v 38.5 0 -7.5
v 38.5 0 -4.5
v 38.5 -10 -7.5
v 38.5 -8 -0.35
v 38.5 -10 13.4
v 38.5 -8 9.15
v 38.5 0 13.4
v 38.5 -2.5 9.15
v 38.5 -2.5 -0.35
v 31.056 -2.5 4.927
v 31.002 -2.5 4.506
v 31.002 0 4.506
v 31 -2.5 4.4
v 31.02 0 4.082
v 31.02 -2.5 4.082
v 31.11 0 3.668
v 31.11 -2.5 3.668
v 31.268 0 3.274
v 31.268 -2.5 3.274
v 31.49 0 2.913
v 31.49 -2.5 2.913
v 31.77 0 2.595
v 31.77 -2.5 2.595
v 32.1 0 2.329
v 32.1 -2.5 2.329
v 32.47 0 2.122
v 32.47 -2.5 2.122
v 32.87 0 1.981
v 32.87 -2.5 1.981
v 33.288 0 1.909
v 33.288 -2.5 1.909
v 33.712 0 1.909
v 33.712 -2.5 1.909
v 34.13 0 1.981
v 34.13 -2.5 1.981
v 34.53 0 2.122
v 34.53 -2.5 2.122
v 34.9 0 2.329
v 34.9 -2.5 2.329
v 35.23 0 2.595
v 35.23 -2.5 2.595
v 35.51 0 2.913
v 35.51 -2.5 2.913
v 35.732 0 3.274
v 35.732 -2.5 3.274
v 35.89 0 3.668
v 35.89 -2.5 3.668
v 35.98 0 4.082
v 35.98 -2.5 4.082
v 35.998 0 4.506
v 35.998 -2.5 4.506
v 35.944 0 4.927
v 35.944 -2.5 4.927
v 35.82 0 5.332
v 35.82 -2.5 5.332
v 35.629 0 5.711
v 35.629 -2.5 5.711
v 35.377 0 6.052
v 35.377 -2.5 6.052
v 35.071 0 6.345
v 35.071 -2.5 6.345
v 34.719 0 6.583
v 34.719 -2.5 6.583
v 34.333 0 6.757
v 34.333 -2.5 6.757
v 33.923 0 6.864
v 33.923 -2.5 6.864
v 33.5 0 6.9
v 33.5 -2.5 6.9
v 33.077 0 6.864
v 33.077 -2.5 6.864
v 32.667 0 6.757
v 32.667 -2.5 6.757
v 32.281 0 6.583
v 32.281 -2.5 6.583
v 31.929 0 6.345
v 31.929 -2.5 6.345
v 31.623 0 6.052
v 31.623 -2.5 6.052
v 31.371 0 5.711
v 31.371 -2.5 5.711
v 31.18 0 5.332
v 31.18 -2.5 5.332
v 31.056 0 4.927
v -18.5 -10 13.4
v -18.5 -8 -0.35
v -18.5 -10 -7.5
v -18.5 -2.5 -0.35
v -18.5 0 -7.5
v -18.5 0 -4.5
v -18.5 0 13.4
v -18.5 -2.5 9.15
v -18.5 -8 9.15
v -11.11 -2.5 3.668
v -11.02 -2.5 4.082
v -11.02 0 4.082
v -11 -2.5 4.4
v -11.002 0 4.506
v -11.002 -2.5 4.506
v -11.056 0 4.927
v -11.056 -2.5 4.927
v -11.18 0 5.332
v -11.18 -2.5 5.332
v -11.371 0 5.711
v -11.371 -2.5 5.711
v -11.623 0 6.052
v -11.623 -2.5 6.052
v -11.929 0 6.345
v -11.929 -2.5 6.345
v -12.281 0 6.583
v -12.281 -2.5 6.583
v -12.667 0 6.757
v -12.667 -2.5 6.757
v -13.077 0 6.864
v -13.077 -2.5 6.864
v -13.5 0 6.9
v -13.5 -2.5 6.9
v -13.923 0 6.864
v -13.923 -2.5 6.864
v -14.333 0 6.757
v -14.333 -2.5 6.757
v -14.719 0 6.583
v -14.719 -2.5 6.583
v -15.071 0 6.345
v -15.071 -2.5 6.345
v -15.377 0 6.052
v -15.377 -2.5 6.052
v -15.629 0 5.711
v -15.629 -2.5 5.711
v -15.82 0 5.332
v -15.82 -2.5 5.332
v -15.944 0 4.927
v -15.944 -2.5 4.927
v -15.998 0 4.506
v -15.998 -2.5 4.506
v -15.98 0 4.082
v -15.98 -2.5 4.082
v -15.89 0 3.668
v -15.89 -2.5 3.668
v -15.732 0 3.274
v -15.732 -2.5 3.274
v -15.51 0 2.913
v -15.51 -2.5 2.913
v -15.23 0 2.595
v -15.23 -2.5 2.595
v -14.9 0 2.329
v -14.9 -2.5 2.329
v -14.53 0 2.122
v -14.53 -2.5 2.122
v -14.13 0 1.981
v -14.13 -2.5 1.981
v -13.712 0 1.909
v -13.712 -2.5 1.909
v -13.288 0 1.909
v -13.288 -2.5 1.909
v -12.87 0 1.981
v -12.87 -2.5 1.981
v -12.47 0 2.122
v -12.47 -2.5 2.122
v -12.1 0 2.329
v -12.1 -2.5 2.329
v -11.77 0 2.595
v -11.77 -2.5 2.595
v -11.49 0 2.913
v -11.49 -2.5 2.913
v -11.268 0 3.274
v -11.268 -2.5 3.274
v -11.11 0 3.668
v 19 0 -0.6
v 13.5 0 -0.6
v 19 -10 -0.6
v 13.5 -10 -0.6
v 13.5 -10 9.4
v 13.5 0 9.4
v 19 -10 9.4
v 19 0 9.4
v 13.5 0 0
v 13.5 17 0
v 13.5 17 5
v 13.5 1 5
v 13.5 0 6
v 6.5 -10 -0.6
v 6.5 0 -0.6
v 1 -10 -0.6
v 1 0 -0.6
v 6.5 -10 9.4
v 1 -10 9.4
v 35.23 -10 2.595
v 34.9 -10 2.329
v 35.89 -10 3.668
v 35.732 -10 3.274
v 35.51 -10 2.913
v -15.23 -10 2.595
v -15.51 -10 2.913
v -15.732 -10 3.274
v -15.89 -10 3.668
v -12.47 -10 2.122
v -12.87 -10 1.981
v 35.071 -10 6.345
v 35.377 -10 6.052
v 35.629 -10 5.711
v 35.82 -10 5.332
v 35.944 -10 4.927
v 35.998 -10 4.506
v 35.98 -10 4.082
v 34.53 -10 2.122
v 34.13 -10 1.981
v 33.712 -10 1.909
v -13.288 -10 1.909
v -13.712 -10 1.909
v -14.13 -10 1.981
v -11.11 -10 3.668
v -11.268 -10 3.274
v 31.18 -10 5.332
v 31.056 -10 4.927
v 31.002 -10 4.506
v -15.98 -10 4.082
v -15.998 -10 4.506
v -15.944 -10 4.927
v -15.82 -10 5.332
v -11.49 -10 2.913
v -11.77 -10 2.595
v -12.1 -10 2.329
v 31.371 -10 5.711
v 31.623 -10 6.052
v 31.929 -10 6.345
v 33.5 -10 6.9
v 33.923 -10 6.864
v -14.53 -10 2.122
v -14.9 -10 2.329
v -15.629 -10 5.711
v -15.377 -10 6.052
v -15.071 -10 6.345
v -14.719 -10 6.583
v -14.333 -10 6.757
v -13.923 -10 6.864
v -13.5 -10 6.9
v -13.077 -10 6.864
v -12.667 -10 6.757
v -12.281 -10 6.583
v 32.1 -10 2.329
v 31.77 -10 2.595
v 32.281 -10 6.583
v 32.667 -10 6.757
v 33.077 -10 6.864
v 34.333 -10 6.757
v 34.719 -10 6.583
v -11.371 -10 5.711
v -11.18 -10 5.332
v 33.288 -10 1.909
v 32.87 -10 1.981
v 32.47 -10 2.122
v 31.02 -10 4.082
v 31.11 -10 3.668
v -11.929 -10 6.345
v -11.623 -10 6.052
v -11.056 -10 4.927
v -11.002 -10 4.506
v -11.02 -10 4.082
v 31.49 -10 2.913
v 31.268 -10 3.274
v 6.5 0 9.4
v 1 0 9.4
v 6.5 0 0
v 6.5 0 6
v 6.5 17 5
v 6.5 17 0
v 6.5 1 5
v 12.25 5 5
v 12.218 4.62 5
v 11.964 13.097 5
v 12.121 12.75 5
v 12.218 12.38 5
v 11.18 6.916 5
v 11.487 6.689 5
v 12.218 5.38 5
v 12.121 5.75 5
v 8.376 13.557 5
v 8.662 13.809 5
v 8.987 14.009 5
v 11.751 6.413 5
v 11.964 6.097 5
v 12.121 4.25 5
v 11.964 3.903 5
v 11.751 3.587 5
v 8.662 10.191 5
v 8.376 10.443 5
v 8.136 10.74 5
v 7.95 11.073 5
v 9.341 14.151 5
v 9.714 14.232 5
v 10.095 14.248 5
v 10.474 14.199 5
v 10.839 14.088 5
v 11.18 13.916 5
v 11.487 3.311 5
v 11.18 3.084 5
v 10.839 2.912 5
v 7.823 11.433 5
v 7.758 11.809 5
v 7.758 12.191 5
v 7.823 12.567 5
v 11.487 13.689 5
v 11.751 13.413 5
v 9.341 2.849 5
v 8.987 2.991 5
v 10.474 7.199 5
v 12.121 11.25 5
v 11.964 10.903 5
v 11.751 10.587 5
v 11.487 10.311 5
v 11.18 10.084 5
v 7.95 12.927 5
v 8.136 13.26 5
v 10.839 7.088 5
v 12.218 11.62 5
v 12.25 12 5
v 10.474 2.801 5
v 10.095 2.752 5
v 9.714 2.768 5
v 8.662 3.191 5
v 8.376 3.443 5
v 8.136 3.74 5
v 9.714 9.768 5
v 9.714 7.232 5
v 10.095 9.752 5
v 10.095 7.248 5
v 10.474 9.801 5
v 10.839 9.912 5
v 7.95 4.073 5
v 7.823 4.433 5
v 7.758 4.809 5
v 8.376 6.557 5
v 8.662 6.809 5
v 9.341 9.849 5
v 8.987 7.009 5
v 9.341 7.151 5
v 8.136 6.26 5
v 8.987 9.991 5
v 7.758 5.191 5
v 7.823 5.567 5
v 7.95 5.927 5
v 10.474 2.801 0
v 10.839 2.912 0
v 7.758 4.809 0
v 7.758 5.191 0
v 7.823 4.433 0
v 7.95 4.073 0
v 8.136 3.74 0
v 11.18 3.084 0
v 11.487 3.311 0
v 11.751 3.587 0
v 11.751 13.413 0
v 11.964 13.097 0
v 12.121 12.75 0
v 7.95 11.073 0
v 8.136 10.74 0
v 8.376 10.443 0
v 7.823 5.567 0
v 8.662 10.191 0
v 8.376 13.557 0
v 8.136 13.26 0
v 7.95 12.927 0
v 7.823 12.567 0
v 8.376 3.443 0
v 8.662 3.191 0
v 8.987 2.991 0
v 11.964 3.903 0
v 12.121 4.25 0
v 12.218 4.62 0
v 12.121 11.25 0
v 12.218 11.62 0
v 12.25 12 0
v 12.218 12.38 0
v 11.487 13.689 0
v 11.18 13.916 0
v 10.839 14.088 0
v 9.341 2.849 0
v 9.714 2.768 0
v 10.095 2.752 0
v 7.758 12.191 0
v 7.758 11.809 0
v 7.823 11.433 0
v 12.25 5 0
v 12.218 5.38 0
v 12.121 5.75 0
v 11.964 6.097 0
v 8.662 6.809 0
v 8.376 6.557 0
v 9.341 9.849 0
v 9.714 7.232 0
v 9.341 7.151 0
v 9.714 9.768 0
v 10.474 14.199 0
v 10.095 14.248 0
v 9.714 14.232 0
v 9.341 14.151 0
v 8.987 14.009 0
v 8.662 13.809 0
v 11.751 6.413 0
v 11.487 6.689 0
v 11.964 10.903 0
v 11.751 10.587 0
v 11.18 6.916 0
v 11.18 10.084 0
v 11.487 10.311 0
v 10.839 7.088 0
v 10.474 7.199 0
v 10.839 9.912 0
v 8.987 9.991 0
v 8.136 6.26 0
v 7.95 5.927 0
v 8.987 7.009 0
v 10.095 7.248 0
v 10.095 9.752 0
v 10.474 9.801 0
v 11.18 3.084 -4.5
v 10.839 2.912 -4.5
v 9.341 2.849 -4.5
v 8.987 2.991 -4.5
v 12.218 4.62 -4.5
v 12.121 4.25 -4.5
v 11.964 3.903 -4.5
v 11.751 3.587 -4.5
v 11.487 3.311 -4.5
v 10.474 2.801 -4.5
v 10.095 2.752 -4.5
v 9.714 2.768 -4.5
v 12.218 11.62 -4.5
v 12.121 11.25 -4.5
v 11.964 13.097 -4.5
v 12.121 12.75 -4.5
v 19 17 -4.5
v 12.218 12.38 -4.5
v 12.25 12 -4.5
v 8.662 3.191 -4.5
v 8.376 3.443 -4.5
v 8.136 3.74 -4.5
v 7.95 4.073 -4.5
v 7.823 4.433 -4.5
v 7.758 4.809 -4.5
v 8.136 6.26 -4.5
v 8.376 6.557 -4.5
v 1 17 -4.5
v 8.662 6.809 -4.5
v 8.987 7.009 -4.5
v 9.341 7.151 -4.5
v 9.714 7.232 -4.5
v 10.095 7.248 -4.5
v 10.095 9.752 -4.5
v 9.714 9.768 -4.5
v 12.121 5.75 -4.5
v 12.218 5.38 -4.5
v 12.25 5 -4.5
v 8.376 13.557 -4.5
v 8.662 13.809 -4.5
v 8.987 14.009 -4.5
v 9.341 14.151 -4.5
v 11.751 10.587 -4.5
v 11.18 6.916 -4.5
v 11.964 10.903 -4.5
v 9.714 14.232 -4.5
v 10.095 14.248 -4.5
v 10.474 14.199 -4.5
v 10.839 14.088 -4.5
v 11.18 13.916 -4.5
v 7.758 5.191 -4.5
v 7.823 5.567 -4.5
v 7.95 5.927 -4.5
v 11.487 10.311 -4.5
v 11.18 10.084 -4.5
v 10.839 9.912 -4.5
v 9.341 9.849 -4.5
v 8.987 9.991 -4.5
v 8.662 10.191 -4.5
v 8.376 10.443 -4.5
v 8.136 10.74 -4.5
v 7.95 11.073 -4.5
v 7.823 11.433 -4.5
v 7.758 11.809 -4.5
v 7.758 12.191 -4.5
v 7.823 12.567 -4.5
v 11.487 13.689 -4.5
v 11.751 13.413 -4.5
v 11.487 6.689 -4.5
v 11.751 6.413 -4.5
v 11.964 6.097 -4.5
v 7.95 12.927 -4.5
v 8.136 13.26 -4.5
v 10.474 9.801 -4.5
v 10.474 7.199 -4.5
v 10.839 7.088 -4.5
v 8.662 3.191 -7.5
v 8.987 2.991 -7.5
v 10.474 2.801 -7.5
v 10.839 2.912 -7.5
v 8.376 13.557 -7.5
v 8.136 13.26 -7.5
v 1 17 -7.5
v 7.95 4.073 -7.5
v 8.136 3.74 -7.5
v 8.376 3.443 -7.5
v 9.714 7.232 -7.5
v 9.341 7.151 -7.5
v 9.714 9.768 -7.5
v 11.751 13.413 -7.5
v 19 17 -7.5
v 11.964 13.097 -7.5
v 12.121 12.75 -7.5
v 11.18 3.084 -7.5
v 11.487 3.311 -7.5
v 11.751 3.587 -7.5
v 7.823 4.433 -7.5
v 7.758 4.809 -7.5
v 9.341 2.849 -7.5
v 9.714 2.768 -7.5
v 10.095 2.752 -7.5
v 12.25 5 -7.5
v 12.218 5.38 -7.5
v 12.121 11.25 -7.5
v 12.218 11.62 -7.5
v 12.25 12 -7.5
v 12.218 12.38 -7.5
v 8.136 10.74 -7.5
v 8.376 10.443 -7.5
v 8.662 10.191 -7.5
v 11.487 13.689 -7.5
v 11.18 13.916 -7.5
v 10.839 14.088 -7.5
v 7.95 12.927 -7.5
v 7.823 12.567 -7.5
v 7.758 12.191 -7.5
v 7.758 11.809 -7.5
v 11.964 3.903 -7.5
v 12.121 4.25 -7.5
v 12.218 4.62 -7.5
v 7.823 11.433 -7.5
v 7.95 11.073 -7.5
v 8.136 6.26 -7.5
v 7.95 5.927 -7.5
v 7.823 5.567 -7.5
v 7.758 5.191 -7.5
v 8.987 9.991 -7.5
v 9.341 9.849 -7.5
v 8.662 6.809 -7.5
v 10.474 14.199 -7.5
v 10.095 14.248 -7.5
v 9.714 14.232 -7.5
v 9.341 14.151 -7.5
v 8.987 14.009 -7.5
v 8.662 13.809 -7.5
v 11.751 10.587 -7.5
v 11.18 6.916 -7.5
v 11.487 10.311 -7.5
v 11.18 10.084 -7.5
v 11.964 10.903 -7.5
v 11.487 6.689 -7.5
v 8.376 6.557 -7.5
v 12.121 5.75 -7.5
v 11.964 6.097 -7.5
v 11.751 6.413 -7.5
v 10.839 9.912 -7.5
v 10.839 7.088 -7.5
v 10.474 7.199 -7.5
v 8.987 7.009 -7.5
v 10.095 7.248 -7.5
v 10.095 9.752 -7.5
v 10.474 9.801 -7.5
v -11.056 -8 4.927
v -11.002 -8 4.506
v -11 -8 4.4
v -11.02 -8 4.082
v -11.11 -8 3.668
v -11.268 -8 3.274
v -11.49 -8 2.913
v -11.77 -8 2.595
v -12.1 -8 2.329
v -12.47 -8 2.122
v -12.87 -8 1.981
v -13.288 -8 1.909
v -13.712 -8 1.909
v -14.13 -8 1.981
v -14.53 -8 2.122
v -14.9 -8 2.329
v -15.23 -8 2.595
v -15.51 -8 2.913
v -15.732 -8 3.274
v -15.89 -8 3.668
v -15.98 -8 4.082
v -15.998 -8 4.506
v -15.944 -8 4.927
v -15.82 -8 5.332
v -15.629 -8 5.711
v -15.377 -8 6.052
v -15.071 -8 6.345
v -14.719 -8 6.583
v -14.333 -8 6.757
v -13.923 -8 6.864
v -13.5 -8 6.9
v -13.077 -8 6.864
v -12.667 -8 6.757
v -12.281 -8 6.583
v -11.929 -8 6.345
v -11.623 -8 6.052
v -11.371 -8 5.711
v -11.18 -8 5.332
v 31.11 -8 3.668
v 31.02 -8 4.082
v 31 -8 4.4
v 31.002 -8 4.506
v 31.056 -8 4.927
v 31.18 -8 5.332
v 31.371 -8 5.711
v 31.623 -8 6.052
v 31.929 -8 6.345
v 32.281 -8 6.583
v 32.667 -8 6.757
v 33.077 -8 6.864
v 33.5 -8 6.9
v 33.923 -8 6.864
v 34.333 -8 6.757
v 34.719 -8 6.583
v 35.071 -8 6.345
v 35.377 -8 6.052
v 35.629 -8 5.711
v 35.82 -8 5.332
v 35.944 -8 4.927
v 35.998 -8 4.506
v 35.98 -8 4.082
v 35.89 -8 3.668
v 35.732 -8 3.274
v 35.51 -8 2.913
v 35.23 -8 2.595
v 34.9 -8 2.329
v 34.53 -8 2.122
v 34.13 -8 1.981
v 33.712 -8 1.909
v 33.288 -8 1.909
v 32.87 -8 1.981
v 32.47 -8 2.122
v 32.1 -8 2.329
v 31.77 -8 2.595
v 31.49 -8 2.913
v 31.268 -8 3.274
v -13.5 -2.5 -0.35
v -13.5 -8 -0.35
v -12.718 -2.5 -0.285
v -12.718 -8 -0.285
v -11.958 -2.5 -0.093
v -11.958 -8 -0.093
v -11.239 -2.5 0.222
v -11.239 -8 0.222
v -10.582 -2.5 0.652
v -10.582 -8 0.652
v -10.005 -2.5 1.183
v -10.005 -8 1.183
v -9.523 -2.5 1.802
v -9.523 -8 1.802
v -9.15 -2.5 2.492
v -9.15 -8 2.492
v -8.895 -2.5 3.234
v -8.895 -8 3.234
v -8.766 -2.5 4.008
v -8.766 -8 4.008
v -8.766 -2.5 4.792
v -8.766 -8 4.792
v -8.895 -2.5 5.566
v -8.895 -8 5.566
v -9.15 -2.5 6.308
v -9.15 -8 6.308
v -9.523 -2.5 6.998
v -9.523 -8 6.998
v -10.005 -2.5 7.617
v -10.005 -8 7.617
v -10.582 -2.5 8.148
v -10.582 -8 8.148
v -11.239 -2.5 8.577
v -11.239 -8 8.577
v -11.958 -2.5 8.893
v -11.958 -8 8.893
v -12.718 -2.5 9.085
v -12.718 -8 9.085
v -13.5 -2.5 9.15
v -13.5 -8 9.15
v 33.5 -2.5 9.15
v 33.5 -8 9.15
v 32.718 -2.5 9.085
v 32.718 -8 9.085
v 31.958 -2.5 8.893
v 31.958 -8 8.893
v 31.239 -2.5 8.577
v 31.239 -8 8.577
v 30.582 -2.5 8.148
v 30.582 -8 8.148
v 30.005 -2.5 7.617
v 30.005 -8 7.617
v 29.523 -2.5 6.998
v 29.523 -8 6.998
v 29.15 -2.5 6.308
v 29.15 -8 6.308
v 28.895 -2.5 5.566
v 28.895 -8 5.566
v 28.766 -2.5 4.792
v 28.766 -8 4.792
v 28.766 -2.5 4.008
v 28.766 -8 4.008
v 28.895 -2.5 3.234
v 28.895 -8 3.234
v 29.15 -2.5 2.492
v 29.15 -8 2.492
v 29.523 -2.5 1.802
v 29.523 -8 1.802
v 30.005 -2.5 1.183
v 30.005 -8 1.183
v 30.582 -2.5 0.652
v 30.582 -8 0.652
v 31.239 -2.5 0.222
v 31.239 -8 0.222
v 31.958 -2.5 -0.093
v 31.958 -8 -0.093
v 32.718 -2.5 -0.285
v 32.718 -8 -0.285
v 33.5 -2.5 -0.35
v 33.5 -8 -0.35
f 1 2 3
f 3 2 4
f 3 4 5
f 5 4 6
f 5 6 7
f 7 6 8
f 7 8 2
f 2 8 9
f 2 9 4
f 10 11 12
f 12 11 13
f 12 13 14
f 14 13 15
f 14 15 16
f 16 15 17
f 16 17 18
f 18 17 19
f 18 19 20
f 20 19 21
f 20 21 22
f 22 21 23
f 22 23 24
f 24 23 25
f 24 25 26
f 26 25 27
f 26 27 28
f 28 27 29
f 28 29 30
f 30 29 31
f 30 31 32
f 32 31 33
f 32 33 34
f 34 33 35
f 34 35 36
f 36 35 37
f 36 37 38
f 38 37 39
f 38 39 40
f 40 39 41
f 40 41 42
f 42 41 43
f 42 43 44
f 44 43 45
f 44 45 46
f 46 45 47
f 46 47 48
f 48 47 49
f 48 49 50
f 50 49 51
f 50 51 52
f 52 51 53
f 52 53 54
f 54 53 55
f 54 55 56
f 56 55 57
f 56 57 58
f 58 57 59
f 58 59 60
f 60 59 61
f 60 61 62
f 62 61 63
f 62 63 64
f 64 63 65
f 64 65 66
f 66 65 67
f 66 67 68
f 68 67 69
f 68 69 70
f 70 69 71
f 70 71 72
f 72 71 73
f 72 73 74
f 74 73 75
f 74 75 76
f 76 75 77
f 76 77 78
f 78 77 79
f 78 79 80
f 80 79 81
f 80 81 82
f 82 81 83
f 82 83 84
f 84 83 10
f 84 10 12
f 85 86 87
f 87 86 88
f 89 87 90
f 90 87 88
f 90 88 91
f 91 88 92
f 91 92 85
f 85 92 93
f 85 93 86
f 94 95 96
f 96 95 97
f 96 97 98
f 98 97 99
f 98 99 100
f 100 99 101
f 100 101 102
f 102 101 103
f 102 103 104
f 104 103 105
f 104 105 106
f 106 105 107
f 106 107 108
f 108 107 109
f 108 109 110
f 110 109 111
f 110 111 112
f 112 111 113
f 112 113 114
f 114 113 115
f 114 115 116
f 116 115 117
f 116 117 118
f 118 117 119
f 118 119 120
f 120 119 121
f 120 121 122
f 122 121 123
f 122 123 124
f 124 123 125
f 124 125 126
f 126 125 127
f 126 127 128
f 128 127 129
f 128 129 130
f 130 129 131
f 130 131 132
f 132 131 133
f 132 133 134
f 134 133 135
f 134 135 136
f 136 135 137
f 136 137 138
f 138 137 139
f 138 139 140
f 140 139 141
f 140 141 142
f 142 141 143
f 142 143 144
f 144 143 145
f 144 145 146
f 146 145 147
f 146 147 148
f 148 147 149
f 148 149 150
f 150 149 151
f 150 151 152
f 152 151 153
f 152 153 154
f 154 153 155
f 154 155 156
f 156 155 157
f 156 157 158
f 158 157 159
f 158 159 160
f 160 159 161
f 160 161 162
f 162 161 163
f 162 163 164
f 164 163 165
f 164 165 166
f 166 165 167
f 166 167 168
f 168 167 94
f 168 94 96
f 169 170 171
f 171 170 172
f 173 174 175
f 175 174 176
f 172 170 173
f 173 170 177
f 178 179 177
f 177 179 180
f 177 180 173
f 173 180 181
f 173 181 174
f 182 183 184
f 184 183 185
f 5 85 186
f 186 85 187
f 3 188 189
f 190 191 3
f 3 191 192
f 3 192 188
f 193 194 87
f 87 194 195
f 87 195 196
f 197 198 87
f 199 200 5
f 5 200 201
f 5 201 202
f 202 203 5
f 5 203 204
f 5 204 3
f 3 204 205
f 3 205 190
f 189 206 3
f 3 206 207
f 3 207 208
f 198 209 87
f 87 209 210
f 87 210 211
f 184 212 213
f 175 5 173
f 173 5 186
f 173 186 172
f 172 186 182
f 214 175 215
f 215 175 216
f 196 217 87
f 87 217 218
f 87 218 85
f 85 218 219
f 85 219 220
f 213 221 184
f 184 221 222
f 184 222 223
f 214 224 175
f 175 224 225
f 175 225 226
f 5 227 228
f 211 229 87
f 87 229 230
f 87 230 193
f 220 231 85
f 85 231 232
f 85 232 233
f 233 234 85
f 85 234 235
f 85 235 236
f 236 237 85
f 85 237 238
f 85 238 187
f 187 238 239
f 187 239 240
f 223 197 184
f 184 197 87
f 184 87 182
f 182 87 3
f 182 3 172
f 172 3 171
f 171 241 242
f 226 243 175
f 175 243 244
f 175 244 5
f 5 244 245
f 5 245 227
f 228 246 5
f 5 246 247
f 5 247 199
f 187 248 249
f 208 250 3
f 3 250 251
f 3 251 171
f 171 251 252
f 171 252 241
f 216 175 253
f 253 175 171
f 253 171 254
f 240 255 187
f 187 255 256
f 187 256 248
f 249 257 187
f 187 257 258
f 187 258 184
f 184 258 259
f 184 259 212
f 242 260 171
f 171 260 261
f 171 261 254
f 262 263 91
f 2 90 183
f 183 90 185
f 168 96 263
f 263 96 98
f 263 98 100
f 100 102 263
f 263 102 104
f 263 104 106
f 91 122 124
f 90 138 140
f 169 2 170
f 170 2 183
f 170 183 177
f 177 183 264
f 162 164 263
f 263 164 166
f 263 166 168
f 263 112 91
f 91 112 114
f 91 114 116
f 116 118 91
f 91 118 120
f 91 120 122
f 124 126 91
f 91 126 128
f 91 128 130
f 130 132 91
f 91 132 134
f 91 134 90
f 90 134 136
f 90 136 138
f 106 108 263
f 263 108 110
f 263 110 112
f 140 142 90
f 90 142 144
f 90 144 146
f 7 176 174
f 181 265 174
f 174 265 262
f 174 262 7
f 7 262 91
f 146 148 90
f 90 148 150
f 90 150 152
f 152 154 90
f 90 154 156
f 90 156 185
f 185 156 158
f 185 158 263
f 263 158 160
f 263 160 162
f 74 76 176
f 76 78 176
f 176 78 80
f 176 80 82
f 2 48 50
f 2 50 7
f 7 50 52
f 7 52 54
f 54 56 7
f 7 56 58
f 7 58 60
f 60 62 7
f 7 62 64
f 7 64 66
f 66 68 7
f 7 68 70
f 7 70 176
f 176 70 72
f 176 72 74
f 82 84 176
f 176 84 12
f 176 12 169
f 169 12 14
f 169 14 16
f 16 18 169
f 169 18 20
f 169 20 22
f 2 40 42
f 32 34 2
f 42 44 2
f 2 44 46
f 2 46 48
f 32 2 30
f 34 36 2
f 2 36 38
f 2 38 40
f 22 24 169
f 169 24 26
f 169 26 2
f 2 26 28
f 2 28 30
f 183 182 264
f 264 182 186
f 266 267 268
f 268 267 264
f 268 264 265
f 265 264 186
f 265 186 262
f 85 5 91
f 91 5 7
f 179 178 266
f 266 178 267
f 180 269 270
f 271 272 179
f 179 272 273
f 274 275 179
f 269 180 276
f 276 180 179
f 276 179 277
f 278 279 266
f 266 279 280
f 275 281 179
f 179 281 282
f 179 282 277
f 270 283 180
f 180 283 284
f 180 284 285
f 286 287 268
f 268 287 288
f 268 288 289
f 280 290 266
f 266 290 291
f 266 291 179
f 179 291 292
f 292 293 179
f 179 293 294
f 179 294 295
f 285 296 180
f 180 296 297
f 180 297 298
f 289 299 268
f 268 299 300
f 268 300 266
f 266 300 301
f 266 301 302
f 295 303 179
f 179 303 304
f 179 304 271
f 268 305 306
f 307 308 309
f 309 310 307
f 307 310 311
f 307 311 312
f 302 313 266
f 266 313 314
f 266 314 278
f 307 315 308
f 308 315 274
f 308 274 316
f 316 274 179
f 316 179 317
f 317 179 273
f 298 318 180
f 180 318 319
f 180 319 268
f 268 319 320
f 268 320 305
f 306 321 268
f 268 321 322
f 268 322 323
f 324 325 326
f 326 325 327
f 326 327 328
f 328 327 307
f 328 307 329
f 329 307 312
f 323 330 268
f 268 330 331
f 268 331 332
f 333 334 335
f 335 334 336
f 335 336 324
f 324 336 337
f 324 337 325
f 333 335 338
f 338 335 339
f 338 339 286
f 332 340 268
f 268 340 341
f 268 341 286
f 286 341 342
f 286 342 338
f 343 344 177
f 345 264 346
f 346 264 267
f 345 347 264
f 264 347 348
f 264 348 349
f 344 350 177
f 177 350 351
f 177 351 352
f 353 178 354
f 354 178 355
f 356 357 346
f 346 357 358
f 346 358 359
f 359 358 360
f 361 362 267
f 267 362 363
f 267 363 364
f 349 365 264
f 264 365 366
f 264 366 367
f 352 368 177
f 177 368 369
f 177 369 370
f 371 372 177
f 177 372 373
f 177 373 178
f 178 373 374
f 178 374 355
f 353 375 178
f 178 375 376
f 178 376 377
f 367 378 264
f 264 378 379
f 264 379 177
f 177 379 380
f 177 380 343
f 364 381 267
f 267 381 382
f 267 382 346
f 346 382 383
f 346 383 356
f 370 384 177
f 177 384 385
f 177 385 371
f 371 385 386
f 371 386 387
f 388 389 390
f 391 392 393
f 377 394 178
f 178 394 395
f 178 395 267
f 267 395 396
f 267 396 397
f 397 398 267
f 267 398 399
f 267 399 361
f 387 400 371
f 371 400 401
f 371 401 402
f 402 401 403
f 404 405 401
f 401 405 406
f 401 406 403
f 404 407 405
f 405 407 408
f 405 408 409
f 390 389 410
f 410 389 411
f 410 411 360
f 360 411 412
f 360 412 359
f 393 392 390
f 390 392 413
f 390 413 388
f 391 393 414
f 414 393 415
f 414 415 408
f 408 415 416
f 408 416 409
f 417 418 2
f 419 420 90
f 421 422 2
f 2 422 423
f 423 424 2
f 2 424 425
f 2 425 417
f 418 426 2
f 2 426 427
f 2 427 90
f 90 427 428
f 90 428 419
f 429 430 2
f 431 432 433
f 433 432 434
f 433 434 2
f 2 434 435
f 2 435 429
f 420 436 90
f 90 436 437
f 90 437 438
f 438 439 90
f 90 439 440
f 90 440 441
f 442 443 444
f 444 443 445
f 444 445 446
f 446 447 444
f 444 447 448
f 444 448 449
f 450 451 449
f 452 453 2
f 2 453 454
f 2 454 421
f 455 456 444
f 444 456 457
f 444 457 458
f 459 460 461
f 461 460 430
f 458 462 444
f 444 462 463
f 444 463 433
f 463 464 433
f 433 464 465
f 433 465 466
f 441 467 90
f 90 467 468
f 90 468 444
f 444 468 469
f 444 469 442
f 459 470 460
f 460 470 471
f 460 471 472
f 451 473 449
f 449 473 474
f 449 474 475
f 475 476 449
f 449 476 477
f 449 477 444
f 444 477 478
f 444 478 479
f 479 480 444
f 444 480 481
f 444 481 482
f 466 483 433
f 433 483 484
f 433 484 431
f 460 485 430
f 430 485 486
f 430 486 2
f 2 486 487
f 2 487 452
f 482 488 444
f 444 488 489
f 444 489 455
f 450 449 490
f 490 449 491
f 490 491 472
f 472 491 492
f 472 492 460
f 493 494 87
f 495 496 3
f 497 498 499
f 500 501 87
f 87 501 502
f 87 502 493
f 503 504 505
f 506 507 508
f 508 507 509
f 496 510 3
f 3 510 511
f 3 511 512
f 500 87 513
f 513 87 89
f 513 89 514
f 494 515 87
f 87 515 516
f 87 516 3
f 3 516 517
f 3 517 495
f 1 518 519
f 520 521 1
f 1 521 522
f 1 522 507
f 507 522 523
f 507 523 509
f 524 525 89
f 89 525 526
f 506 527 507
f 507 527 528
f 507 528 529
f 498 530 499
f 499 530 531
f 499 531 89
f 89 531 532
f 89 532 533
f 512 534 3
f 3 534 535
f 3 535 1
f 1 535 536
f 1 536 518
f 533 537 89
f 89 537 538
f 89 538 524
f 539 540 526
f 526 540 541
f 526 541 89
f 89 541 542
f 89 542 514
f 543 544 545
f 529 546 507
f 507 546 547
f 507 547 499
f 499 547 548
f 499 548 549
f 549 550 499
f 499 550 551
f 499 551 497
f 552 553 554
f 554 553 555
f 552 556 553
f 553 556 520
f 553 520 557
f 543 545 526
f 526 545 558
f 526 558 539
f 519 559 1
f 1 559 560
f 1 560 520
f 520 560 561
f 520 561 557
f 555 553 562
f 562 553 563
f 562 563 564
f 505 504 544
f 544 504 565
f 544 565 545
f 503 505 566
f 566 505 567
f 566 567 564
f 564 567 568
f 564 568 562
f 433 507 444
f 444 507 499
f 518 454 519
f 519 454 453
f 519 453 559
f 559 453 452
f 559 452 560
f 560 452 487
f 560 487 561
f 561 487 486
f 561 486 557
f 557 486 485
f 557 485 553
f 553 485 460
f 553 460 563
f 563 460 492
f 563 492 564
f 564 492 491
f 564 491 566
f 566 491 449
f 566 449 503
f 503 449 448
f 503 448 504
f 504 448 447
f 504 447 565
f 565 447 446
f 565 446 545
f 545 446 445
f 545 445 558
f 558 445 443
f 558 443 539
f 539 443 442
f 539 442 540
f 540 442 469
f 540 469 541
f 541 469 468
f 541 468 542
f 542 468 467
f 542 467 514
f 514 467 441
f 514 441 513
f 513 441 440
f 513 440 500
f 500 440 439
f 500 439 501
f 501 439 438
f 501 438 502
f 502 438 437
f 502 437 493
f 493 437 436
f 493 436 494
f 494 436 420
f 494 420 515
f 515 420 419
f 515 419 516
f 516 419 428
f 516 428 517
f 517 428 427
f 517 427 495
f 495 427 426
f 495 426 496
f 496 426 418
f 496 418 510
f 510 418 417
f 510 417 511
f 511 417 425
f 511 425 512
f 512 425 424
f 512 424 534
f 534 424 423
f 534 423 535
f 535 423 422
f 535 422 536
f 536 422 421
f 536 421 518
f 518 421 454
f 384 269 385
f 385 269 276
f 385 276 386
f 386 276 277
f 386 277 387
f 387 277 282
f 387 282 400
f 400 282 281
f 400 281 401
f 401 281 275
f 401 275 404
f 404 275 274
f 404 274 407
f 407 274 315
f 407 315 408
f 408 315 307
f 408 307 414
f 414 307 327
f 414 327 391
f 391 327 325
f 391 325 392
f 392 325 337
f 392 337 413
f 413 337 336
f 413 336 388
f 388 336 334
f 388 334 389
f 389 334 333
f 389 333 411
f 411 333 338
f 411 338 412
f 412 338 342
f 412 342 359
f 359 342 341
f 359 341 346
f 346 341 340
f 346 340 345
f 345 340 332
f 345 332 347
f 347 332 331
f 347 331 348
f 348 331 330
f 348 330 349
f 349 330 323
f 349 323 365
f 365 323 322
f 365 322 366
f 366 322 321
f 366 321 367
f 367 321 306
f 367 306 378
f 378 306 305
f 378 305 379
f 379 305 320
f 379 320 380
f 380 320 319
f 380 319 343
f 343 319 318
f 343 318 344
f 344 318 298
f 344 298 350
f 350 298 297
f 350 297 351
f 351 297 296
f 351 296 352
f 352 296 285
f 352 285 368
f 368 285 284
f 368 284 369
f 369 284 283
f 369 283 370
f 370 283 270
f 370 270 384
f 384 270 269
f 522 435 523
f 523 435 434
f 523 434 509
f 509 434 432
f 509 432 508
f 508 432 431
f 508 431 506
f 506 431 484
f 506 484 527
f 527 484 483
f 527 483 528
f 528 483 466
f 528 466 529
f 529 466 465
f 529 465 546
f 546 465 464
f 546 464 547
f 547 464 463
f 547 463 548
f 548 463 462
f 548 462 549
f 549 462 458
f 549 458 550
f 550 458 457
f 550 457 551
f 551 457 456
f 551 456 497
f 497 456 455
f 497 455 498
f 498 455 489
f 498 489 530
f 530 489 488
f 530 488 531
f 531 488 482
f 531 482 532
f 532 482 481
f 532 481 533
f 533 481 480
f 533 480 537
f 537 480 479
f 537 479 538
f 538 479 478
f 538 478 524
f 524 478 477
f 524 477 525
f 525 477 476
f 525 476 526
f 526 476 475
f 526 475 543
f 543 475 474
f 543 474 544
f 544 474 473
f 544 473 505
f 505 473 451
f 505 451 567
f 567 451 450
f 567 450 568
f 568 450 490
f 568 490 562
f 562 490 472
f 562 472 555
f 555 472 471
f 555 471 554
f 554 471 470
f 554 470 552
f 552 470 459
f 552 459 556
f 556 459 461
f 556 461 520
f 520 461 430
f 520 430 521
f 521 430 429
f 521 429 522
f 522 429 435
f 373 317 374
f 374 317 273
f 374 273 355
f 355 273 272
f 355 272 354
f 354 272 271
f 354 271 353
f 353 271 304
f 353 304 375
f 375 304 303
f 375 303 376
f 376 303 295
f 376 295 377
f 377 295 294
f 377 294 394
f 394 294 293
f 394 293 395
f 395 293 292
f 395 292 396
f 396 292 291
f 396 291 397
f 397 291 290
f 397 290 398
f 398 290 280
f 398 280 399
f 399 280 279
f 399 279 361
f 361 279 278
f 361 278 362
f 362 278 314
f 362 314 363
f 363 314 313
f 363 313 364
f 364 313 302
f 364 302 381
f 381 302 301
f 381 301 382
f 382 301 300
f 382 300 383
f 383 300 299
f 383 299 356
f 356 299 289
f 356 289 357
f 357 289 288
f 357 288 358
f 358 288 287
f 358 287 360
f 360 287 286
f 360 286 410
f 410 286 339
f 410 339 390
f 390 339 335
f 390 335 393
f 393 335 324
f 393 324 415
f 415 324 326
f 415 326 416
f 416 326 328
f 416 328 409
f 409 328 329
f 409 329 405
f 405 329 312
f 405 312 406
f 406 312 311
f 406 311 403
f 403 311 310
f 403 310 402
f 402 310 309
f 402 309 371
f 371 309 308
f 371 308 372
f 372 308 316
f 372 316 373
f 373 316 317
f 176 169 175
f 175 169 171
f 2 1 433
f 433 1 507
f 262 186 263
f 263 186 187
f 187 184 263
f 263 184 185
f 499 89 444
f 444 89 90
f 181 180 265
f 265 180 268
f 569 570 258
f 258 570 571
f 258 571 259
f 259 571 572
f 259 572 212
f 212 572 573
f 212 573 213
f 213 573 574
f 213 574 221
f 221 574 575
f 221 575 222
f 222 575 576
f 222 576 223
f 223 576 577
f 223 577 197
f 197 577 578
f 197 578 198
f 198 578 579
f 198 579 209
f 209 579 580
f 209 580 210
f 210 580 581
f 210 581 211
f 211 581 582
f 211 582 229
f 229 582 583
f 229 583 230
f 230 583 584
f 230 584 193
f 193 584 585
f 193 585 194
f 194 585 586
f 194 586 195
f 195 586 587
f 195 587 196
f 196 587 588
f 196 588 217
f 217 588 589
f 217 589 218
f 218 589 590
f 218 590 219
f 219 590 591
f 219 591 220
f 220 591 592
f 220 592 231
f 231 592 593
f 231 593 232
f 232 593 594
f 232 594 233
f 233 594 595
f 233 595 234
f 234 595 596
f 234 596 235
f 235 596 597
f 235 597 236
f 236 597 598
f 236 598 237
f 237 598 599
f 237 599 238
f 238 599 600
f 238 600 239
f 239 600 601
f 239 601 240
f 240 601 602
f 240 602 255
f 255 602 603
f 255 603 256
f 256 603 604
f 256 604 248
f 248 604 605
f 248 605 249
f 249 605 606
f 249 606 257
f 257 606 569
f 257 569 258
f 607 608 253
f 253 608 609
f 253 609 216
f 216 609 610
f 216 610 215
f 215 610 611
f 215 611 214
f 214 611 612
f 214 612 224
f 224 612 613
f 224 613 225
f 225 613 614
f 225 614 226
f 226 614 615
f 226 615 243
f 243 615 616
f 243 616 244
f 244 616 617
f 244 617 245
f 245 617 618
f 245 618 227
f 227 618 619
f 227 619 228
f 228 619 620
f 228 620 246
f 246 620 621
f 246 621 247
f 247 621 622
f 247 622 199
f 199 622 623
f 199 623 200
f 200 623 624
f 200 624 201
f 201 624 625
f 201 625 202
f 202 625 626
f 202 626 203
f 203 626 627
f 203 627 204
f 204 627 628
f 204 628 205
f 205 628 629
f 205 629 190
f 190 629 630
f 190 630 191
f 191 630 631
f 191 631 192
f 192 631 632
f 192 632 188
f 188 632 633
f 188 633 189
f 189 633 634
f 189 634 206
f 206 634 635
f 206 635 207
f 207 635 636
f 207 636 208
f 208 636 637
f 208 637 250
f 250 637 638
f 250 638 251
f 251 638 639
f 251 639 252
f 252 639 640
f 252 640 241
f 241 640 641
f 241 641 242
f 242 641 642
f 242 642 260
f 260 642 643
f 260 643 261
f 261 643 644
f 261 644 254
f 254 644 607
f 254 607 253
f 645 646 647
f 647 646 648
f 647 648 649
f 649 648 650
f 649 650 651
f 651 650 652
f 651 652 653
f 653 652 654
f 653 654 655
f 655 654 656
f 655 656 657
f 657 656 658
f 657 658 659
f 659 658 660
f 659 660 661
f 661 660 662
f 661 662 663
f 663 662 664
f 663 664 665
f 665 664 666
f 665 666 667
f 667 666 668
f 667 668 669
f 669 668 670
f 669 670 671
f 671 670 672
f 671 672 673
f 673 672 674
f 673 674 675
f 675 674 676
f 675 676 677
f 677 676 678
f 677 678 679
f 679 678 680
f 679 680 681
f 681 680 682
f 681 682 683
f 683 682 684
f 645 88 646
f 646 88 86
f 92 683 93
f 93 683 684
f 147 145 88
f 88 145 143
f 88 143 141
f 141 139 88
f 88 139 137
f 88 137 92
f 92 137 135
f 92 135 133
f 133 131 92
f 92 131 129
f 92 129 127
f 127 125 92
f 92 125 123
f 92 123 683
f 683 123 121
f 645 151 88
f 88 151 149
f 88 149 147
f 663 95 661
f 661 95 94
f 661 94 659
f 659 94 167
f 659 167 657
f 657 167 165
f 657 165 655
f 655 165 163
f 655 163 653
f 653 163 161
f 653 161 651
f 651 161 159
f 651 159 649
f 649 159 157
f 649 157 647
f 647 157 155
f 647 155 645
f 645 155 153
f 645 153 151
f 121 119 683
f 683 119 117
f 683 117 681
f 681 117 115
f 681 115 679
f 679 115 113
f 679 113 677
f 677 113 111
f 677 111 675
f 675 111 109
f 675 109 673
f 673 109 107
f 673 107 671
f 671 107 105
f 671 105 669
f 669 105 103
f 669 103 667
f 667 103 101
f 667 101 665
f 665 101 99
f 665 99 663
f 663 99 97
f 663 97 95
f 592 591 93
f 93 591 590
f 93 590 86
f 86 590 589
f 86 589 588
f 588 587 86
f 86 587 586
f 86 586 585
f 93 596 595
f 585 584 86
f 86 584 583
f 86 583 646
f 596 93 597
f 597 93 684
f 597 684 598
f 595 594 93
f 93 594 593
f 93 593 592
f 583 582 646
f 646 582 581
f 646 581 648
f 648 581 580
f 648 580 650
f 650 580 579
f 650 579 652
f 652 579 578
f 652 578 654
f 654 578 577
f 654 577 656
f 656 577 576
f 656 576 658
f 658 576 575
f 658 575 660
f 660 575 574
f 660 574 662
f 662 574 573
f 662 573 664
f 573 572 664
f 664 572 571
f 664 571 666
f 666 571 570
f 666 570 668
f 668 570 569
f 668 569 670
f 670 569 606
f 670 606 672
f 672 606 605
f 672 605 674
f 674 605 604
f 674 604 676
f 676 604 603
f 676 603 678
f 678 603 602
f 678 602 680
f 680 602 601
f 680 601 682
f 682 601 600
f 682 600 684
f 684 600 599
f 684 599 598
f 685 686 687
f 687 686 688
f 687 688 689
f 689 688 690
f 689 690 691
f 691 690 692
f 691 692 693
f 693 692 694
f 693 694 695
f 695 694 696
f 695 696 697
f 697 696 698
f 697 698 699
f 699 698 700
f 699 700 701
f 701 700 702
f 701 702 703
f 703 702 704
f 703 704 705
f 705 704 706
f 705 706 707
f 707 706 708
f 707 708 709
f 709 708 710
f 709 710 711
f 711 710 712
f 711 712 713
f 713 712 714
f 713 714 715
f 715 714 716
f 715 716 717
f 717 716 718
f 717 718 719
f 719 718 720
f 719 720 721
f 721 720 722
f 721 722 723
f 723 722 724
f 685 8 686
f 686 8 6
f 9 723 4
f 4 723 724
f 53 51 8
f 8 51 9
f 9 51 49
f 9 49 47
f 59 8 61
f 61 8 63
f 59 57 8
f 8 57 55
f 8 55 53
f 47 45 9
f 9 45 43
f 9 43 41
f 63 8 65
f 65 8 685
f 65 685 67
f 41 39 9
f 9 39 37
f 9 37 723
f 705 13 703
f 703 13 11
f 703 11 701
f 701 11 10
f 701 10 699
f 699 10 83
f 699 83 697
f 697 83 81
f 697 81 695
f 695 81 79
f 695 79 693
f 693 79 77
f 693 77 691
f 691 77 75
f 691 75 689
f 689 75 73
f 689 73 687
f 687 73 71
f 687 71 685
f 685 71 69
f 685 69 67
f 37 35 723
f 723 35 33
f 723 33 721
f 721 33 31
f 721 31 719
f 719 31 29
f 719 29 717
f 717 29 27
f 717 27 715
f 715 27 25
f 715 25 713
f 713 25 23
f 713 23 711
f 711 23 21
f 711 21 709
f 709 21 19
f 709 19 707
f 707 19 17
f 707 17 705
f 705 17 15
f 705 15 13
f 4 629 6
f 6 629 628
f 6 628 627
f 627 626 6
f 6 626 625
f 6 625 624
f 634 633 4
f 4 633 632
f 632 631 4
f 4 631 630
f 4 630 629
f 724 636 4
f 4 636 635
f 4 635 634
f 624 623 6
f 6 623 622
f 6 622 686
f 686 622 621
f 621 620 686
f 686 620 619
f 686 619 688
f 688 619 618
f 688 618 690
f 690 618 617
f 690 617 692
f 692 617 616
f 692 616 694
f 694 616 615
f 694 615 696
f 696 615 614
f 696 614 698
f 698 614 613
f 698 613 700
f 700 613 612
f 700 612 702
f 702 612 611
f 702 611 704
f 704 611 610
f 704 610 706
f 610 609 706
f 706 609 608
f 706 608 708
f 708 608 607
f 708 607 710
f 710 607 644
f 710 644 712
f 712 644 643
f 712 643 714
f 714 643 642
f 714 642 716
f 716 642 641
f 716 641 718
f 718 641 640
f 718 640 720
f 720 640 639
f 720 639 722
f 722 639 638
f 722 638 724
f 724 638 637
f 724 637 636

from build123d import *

# Parameters (mm, degrees)
ESQUISSE1_W              = 20
ESQUISSE1_H              = 17
ESQUISSE1_R              = 2.1
BOSS_EXTRU_1_DEPTH       = 5
ESQUISSE2_W              = 18
ESQUISSE2_H              = 4.4
BOSS_EXTRU_3_DEPTH       = 10
ESQUISSE5_W              = 6.5
ESQUISSE5_H              = 17
ENL_V_MAT_EXTRU_3_DEPTH  = 18
BOSS_EXTRU_6_DEPTH       = 8.4
BOSS_EXTRU_6_DEPTH_BACK  = 10
ESQUISSE10_W             = 7
ESQUISSE10_H             = 10
ESQUISSE11_W             = 5.5
ESQUISSE11_H             = 2.5
ESQUISSE11_W_2           = 7
ESQUISSE11_H_2           = 0.5
BOSS_EXTRU_7_DEPTH       = 17
ESQUISSE12_W             = 18
ESQUISSE12_H             = 2.5
BOSS_EXTRU_8_DEPTH       = 10
ESQUISSE20_R             = 2.25
ENL_V_MAT_EXTRU_7_DEPTH  = 18
ESQUISSE21_W             = 4
ESQUISSE21_H             = 10
ESQUISSE21_W_2           = 6.9
BOSS_EXTRU_9_DEPTH       = 25
ESQUISSE22_W             = 19.5
ESQUISSE22_H             = 10
BOSS_EXTRU_10_DEPTH      = 14
BOSS_EXTRU_11_DEPTH      = 3
CHANFREIN1_SIZE          = 1
ESQUISSE29_R             = 2.5
ENL_V_MAT_EXTRU_11_DEPTH = 10
ENL_V_START              = -7.5
ESQUISSE30_R             = 4.75
ESQUISSE30_R_2           = 2.5
ENL_V_MAT_EXTRU_12_DEPTH = 5.5


with BuildPart() as part:
    # Esquisse1 → Boss.-Extru.1 (new body)
    with BuildSketch(Plane.XY):
        with Locations((10, 8.5)):
            Rectangle(ESQUISSE1_W, ESQUISSE1_H)
        with Locations((10, 5)):
            Circle(ESQUISSE1_R, mode=Mode.SUBTRACT)
        with Locations((10, 12)):
            Circle(ESQUISSE1_R, mode=Mode.SUBTRACT)
    extrude(amount=BOSS_EXTRU_1_DEPTH)

    # Esquisse5 → Enlèv. mat.-Extru.3 (cut)
    with BuildSketch(Plane.XY.offset(5)):
        with Locations((16.75, 8.5)):
            Rectangle(ESQUISSE5_W, ESQUISSE5_H)
        with Locations((3.25, 8.5)):
            Rectangle(ESQUISSE5_W, ESQUISSE5_H)
    extrude(amount=-ENL_V_MAT_EXTRU_3_DEPTH, mode=Mode.SUBTRACT)



with BuildPart() as body_2:
    # Esquisse2 → Boss.-Extru.3 (new body)
    with BuildSketch(Plane.XZ):
        with Locations((10, -2.8)):
            Rectangle(ESQUISSE2_W, ESQUISSE2_H)
    extrude(amount=BOSS_EXTRU_3_DEPTH)


with BuildPart() as part_1:
    add(part.part)

    add(body_2.part)  # Boss.-Extru.6 merges body 2
    # Esquisse10 → Boss.-Extru.6 (add, two sides: drawn at the far end of the back side and taken through both)
    with BuildSketch(Plane.XY.offset(5).offset(-BOSS_EXTRU_6_DEPTH_BACK)):
        with Locations((10, -5)):
            Rectangle(ESQUISSE10_W, ESQUISSE10_H)
    extrude(amount=BOSS_EXTRU_6_DEPTH + BOSS_EXTRU_6_DEPTH_BACK)

    # Esquisse11 → Boss.-Extru.7 (add)
    with BuildSketch(Plane(origin=(0, 0, 0), x_dir=(1, 0, 0), z_dir=(0, 1, 0))):
        with Locations((3.75, 6.25)):
            Rectangle(ESQUISSE11_W, ESQUISSE11_H)
        with Locations((10, 6.25)):
            Rectangle(ESQUISSE11_W_2, ESQUISSE11_H)
        with Locations((16.25, 6.25)):
            Rectangle(ESQUISSE11_W, ESQUISSE11_H)
        with Locations((3.75, 4.75)):
            Rectangle(ESQUISSE11_W, ESQUISSE11_H_2)
        with Locations((10, 4.75)):
            Rectangle(ESQUISSE11_W_2, ESQUISSE11_H_2)
        with Locations((16.25, 4.75)):
            Rectangle(ESQUISSE11_W, ESQUISSE11_H_2)
    extrude(amount=BOSS_EXTRU_7_DEPTH)

    # Esquisse12 → Boss.-Extru.8 (add)
    with BuildSketch(Plane.XZ):
        with Locations((10, -6.25)):
            Rectangle(ESQUISSE12_W, ESQUISSE12_H)
    extrude(amount=BOSS_EXTRU_8_DEPTH)

    # Esquisse20 → Enlèv. mat.-Extru.7 (cut)
    with BuildSketch(Plane.XY.offset(5)):
        with Locations((10, 5)):
            Circle(ESQUISSE20_R)
        with Locations((10, 12)):
            Circle(ESQUISSE20_R)
    extrude(amount=-ENL_V_MAT_EXTRU_7_DEPTH, mode=Mode.SUBTRACT)

    # Esquisse21 → Boss.-Extru.9 (add)
    with BuildSketch(Plane(origin=(13.5, 0, 0), x_dir=(0, 0, -1), z_dir=(1, 0, 0))):
        with Locations((-11.4, -5)):
            Rectangle(ESQUISSE21_W, ESQUISSE21_H)
        with Locations((4.05, -5)):
            Rectangle(ESQUISSE21_W_2, ESQUISSE21_H)
    boss_extru_9 = extrude(amount=BOSS_EXTRU_9_DEPTH)

    # Esquisse22 → Boss.-Extru.10 (add)
    with BuildSketch(Plane.XY.offset(-0.6)):
        with Locations((28.75, -5)):
            Rectangle(ESQUISSE22_W, ESQUISSE22_H)
    boss_extru_10 = extrude(amount=BOSS_EXTRU_10_DEPTH)

    # Esquisse24 → Boss.-Extru.11 (add)
    with BuildSketch(Plane(origin=(0, 0, -7.5), x_dir=(-1, 0, 0), z_dir=(0, 0, -1))):
        Polygon((-38.5, 0), (-19, 0), (-19, 17), align=None)
    boss_extru_11 = extrude(amount=-BOSS_EXTRU_11_DEPTH)

    # Symétrie1: Boss.-Extru.9, Boss.-Extru.10, Boss.-Extru.11 across plane
    add(boss_extru_9.mirror(Plane.ZY.offset(-10)))
    add(boss_extru_10.mirror(Plane.ZY.offset(-10)))
    add(boss_extru_11.mirror(Plane.ZY.offset(-10)))

    # Chanfrein1
    chanfrein1_edges = [part_1.edges().sort_by_distance(p)[0] for p in [
        (10, 0, 5),
    ]]
    chamfer(chanfrein1_edges, length=CHANFREIN1_SIZE)

    # Esquisse29 → Enlèv. mat.-Extru.11 (cut)
    with BuildSketch(Plane(origin=(0, 0, 0), x_dir=(1, 0, 0), z_dir=(0, 1, 0))):
        with Locations(Location((-13.5, -4.4, 0), (0, 0, 270))):
            Circle(ESQUISSE29_R)
        with Locations(Location((33.5, -4.4, 0), (0, 0, 270))):
            Circle(ESQUISSE29_R)
    extrude(amount=-ENL_V_MAT_EXTRU_11_DEPTH, mode=Mode.SUBTRACT)

    # Esquisse30 → Enlèv. mat.-Extru.12 (cut)
    # profile 1 of 2: a face of its own
    with BuildSketch(Plane(origin=(0, -10, 0), x_dir=(-1, 0, 0), z_dir=(0, -1, 0)).offset(ENL_V_START)):
        with Locations((13.5, -4.4)):
            Circle(ESQUISSE30_R)
        with Locations(Location((13.5, -4.4, 0), (0, 0, 270))):
            Circle(ESQUISSE30_R_2, mode=Mode.SUBTRACT)
    # profile 2 of 2: a face of its own
    with BuildSketch(Plane(origin=(0, -10, 0), x_dir=(-1, 0, 0), z_dir=(0, -1, 0)).offset(ENL_V_START)):
        with BuildLine():
            ThreePointArc((18.25, -4.4), (16.858757211, -7.758757211), (13.5, -9.15))
            Line((13.5, -9.15), (18.5, -9.15))
            Line((18.5, -9.15), (18.5, 0.35))
            Line((18.5, 0.35), (13.5, 0.35))
            ThreePointArc((13.5, 0.35), (16.858757211, -1.041242789), (18.25, -4.4))
        make_face()
    enl_v_mat_extru_12 = extrude(amount=ENL_V_MAT_EXTRU_12_DEPTH, mode=Mode.SUBTRACT)

    # Symétrie3: Enlèv. mat.-Extru.12 across plane
    add(enl_v_mat_extru_12.mirror(Plane.ZY.offset(-10)), mode=Mode.SUBTRACT)


solid = part_1.part
